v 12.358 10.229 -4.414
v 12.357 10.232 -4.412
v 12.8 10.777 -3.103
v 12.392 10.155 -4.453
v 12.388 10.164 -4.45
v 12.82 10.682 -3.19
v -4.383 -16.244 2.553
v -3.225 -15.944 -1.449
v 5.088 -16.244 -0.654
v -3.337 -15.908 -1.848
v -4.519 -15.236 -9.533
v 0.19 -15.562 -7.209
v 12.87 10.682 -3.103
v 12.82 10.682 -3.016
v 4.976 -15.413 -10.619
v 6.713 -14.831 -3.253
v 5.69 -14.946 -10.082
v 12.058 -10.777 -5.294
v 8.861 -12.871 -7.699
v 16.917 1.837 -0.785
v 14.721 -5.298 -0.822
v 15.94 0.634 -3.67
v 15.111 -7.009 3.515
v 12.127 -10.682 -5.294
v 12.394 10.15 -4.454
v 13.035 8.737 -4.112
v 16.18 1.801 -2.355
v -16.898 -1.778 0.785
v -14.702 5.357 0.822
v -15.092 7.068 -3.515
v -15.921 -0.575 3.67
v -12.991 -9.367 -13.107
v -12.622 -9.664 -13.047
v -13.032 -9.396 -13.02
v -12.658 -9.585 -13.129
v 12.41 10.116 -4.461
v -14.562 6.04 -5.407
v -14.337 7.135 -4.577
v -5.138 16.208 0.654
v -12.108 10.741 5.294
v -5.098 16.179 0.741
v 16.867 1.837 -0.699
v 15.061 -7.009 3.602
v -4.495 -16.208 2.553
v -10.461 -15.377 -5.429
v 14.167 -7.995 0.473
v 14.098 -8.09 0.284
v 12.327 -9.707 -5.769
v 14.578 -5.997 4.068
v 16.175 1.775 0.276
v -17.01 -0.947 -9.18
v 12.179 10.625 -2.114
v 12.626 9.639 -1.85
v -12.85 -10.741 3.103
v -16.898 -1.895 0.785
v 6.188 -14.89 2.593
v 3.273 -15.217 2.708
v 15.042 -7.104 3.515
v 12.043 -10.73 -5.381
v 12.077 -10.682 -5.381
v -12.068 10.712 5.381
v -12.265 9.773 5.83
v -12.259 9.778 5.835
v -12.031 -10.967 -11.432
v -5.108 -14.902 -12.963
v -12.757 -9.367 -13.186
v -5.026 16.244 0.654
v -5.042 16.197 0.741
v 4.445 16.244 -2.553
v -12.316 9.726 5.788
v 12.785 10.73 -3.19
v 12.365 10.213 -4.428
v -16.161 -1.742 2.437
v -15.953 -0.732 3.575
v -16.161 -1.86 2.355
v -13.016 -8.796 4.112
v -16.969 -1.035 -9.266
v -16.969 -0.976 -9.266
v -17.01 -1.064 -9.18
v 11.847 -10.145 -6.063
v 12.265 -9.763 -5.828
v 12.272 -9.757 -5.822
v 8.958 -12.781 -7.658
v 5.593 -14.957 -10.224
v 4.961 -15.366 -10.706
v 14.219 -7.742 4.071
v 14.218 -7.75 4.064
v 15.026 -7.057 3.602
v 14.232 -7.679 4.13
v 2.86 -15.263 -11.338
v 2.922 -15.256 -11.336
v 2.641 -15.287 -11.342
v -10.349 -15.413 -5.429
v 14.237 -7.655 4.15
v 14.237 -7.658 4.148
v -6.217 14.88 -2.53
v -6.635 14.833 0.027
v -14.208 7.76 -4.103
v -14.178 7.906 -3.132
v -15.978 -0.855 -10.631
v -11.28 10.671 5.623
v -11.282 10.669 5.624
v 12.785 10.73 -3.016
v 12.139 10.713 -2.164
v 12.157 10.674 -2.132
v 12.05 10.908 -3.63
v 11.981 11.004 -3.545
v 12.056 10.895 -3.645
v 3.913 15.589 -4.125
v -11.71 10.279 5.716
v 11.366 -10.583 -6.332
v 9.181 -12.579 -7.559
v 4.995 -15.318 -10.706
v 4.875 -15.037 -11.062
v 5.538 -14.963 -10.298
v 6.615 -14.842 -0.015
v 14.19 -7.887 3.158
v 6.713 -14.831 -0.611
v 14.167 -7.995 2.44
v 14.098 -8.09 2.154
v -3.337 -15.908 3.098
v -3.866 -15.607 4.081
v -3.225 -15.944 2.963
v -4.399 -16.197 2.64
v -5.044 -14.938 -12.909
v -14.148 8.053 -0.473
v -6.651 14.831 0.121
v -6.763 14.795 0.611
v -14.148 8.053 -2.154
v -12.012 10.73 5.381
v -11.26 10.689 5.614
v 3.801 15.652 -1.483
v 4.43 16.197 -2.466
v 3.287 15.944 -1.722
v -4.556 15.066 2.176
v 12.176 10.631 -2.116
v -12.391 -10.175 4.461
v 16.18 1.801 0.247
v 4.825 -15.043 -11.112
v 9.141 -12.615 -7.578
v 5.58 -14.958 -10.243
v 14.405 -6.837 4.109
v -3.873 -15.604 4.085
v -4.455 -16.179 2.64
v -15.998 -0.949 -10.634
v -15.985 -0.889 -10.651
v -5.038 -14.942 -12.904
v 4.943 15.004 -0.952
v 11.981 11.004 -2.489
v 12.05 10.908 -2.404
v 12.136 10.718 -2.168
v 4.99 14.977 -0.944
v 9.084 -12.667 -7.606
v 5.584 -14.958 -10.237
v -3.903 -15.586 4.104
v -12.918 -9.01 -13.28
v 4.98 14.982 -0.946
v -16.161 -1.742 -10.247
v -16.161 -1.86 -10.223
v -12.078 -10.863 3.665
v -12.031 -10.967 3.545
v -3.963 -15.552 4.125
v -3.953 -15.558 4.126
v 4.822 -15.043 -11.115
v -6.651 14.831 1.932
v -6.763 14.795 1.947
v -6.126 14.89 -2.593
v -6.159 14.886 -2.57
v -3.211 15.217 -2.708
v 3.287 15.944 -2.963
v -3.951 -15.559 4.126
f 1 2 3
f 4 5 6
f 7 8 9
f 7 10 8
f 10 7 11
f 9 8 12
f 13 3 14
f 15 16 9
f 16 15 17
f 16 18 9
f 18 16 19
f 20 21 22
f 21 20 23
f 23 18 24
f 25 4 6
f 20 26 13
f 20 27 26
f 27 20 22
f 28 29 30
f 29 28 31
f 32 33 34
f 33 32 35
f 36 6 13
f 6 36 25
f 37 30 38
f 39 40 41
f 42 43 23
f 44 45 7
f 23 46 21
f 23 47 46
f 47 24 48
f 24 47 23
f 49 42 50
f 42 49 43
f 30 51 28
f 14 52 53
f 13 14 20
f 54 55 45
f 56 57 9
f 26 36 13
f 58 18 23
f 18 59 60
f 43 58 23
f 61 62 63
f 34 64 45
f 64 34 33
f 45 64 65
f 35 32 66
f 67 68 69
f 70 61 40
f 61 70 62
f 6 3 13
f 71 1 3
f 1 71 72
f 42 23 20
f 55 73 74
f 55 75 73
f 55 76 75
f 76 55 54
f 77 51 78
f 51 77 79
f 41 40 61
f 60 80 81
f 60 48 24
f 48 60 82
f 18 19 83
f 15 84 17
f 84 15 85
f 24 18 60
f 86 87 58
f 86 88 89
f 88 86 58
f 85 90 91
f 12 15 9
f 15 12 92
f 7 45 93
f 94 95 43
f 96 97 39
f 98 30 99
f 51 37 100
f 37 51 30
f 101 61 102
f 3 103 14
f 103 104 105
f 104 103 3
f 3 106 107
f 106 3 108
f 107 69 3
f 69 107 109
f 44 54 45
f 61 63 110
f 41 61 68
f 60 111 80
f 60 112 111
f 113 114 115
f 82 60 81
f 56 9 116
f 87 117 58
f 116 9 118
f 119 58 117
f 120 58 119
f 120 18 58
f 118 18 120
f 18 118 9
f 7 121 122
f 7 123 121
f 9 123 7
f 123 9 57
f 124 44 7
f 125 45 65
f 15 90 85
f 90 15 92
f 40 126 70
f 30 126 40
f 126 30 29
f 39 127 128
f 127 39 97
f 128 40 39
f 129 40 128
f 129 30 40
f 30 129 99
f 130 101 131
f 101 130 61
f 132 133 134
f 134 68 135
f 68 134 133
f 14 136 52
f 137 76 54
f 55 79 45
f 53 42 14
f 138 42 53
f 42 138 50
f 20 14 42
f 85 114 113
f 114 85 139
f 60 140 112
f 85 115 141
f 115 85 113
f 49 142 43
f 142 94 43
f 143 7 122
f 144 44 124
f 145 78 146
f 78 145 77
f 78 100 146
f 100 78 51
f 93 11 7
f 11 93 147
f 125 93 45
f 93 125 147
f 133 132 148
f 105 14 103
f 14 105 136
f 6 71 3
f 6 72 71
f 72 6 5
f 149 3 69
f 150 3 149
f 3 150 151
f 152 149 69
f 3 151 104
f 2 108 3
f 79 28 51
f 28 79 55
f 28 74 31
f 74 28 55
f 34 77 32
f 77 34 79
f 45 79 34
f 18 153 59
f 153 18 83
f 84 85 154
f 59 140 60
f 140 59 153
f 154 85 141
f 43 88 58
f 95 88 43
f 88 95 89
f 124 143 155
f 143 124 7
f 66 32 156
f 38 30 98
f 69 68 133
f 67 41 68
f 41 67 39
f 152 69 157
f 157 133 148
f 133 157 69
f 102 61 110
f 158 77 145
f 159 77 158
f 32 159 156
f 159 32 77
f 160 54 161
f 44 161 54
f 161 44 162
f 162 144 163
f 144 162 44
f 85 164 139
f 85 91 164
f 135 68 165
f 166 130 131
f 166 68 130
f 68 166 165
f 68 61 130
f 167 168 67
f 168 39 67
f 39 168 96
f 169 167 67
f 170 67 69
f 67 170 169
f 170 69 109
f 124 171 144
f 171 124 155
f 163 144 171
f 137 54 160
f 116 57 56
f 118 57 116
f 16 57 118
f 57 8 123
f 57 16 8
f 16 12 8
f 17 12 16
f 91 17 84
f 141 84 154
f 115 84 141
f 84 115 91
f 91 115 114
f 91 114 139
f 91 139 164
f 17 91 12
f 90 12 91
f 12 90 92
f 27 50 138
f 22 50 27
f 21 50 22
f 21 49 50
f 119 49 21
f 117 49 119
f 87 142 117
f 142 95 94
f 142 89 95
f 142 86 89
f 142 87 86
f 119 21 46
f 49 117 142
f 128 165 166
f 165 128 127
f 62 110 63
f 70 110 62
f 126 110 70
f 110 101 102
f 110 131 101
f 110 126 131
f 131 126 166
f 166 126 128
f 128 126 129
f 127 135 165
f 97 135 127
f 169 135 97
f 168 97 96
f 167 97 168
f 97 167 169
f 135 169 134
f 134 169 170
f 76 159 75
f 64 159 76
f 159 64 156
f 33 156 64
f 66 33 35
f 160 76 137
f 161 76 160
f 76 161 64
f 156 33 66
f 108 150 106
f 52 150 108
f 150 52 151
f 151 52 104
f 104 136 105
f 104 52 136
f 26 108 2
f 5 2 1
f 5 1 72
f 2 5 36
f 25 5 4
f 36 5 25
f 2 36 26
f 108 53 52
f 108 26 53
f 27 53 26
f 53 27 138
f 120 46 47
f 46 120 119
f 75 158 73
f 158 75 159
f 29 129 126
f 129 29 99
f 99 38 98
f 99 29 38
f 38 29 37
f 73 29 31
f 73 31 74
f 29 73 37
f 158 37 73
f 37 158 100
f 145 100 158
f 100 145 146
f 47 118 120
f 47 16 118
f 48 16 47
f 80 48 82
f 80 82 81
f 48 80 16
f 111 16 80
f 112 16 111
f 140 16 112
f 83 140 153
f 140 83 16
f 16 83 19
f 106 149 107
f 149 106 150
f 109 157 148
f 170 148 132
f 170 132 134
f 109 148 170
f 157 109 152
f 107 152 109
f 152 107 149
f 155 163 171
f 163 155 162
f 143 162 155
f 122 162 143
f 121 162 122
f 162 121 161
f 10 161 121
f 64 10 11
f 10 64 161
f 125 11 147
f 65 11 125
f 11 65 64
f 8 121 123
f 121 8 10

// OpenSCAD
// Auto-generated OpenSCAD file

    inner_points = 10*[[1.4067368092918164, -0.7994532745154926, 0.4999999999998308], [1.4067368092915926, -0.7994532745156754, -0.5000000000001692], [-1.4067368092915926, 0.7994532745156754, 0.5000000000001692], [-1.4067368092918164, 0.7994532745154926, -0.4999999999998308], [1.6079808299870764, 0.18008786506691687, 0.4999999999996069], [1.6079808299868528, 0.18008786506673424, -0.500000000000393], [0.6681671406727039, -1.4736304356503493, 0.5000000000001192], [0.6681671406724802, -1.473630435650532, -0.4999999999998807], [-0.6681671406724802, 1.473630435650532, 0.4999999999998807], [-0.6681671406727039, 1.4736304356503493, -0.5000000000001192], [-1.6079808299868528, -0.18008786506673424, 0.500000000000393], [-1.6079808299870764, -0.18008786506691687, -0.4999999999996069], [1.1950308268855827, 1.090841561155204, 0.4999999999995332], [1.1950308268853584, 1.0908415611550215, -0.5000000000004668], [-0.3256196655175062, -1.5849308572230525, 0.5000000000003623], [-0.32561966551773036, -1.584930857223235, -0.4999999999996378], [0.32561966551773036, 1.584930857223235, 0.4999999999996378], [0.3256196655175062, 1.5849308572230525, -0.5000000000003623], [-1.1950308268853584, -1.0908415611550215, 0.5000000000004668], [-1.1950308268855827, -1.090841561155204, -0.4999999999995332], [0.9279252557809003, -1.0165539388954856, 1.3506508083520177], [-1.3482227148786563, 0.2769886316881294, 1.3506508083522912], [1.2535449212985186, 0.5683769183276581, 1.3506508083516553], [-0.15319188799318584, 1.3678301928432421, 1.3506508083518245], [-0.6800555742060643, -1.1966418039623115, 1.3506508083524107], [0.8332474622002755, -0.17118838888009527, 1.8763819204710181], [-0.5734893470914291, 0.6282648856354888, 1.8763819204711873], [0.0946777935811629, -0.845365550014952, 1.8763819204713068], [-0.7747333677866893, -0.35127625394692097, 1.8763819204714112], [0.42029745909878125, 0.7395653072081917, 1.8763819204709444], [0.8332474621996254, -0.17118838888062501, -1.0257311121192891], [-0.5734893470920791, 0.6282648856349591, -1.02573111211912], [0.09467779358051293, -0.8453655500154817, -1.0257311121190005], [-0.7747333677873394, -0.3512762539474507, -1.0257311121188961], [0.42029745909813115, 0.739565307207662, -1.0257311121193629]];

    outer_points = 10*[[1.3833782883880748, -0.18366781795367643, -0.9594605946126766], [1.6817061295863125, 0.18366781795367643, -0.078515062948806], [-1.6817061295863125, -0.18366781795367643, 0.078515062948806], [-1.3833782883880748, 0.18366781795367643, 0.9594605946126766], [1.2027457527591328, -1.0682345020066348, -0.5294447012601022], [1.5010735939573705, -0.7008988660992819, 0.35150083040376845], [0.9786317893777532, 0.7008988660992819, -1.191240777118519], [1.276959630575991, 1.0682345020066348, -0.31029524545464815], [-1.276959630575991, -1.0682345020066348, 0.31029524545464815], [-0.9786317893777532, -0.7008988660992819, 1.191240777118519], [-1.5010735939573705, 0.7008988660992819, -0.35150083040376845], [-1.2027457527591328, 1.0682345020066348, 0.5294447012601022], [0.5057296716271069, -1.6149267780671528, -0.0654445526188289], [0.8040575128253447, -1.2475911421598, 0.8155009790450418], [0.14310566152258547, 1.2475911421598, -1.1362530969790507], [0.44143350272082327, 1.6149267780671528, -0.2553075653151802], [-0.44143350272082327, -1.6149267780671528, 0.2553075653151802], [-0.14310566152258547, -1.2475911421598, 1.1362530969790507], [-0.8040575128253447, 1.2475911421598, -0.8155009790450418], [-0.5057296716271069, 1.6149267780671528, 0.0654445526188289], [0.7868025461164767, -0.10055192633997795, -1.7577018690995023], [-1.692902837218647, -0.10055192633997795, -0.9179619223847519], [0.49453296399477237, -1.5318108864534543, -1.0619215379523868], [-1.0380092449924212, -1.5318108864534543, -0.5429337091716455], [-0.5651071272417749, 0.7840147577129805, -1.6687299336713355], [0.23746592489998974, -0.9337501643704182, -1.8210262146028207], [-1.2950762840872039, -0.9337501643704182, -1.3020383858220792], [-0.16728057411033165, -0.04918348031745989, -2.0528063971086628], [-1.1144437484582619, -0.04918348031745989, -1.7320542791746538], [-0.4595501562320361, -1.4804424404309362, -1.3570260659615474], [1.1032470408259272, 0.13229937193115845, 0.7355772938410956], [-0.42929516816126634, 0.13229937193115845, 1.2545651226218368], [0.6985005418156058, 1.0168660559841167, 0.5037971113352535], [-0.2486626325323244, 1.0168660559841167, 0.8245492292692624], [0.4062309596939014, -0.41439290412935936, 1.1995774424823689]];

    // Convex hull for inner set (I)
    module inner_hull() {
        hull() {
            for (p = inner_points) {
                translate(p) sphere(r=0.1);
            }
        }
    }

    // Convex hull for outer set (O) minus inner hull (O \ I)
    module outer_minus_inner() {
        difference() {
            hull() {
                for (p = outer_points) {
                    translate(p) sphere(r=0.1);
                }
            }
            inner_hull(); // Subtract inner hull
        }
    }

    // Convex hull for outer set (O) minus all translated inner hulls
    module outer_minus_AllTranslationInner() {
        difference() {
            hull() {
                for (p = outer_points) {
                    translate(p) sphere(r=0.1);
                }
            }
            hull() {
                translate([0,0,50]) inner_hull();
                translate([0,0,-50]) inner_hull();
            }; // Subtract translated inner hulls
        }
    }

    // Difference between outer_minus_inner and outer_minus_AllTranslationInner
    module outer_minus_inner_diff() {
        difference() {
            // Outer minus inner
            difference() {
                hull() {
                    for (p = outer_points) {
                        translate(p) sphere(r=0.1);
                    }
                }
                inner_hull();
            }

            // Subtract Outer minus AllTranslationInner
            difference() {
                hull() {
                    for (p = outer_points) {
                        translate(p) sphere(r=0.1);
                    }
                }
                hull() {
                    translate([0,0,50]) inner_hull();
                    translate([0,0,-50]) inner_hull();
                };
            }
        }
    }

    // Rendering all with colors applied
    color([0, 1, 0, 1]) outer_minus_AllTranslationInner(); // Opaque green
    
